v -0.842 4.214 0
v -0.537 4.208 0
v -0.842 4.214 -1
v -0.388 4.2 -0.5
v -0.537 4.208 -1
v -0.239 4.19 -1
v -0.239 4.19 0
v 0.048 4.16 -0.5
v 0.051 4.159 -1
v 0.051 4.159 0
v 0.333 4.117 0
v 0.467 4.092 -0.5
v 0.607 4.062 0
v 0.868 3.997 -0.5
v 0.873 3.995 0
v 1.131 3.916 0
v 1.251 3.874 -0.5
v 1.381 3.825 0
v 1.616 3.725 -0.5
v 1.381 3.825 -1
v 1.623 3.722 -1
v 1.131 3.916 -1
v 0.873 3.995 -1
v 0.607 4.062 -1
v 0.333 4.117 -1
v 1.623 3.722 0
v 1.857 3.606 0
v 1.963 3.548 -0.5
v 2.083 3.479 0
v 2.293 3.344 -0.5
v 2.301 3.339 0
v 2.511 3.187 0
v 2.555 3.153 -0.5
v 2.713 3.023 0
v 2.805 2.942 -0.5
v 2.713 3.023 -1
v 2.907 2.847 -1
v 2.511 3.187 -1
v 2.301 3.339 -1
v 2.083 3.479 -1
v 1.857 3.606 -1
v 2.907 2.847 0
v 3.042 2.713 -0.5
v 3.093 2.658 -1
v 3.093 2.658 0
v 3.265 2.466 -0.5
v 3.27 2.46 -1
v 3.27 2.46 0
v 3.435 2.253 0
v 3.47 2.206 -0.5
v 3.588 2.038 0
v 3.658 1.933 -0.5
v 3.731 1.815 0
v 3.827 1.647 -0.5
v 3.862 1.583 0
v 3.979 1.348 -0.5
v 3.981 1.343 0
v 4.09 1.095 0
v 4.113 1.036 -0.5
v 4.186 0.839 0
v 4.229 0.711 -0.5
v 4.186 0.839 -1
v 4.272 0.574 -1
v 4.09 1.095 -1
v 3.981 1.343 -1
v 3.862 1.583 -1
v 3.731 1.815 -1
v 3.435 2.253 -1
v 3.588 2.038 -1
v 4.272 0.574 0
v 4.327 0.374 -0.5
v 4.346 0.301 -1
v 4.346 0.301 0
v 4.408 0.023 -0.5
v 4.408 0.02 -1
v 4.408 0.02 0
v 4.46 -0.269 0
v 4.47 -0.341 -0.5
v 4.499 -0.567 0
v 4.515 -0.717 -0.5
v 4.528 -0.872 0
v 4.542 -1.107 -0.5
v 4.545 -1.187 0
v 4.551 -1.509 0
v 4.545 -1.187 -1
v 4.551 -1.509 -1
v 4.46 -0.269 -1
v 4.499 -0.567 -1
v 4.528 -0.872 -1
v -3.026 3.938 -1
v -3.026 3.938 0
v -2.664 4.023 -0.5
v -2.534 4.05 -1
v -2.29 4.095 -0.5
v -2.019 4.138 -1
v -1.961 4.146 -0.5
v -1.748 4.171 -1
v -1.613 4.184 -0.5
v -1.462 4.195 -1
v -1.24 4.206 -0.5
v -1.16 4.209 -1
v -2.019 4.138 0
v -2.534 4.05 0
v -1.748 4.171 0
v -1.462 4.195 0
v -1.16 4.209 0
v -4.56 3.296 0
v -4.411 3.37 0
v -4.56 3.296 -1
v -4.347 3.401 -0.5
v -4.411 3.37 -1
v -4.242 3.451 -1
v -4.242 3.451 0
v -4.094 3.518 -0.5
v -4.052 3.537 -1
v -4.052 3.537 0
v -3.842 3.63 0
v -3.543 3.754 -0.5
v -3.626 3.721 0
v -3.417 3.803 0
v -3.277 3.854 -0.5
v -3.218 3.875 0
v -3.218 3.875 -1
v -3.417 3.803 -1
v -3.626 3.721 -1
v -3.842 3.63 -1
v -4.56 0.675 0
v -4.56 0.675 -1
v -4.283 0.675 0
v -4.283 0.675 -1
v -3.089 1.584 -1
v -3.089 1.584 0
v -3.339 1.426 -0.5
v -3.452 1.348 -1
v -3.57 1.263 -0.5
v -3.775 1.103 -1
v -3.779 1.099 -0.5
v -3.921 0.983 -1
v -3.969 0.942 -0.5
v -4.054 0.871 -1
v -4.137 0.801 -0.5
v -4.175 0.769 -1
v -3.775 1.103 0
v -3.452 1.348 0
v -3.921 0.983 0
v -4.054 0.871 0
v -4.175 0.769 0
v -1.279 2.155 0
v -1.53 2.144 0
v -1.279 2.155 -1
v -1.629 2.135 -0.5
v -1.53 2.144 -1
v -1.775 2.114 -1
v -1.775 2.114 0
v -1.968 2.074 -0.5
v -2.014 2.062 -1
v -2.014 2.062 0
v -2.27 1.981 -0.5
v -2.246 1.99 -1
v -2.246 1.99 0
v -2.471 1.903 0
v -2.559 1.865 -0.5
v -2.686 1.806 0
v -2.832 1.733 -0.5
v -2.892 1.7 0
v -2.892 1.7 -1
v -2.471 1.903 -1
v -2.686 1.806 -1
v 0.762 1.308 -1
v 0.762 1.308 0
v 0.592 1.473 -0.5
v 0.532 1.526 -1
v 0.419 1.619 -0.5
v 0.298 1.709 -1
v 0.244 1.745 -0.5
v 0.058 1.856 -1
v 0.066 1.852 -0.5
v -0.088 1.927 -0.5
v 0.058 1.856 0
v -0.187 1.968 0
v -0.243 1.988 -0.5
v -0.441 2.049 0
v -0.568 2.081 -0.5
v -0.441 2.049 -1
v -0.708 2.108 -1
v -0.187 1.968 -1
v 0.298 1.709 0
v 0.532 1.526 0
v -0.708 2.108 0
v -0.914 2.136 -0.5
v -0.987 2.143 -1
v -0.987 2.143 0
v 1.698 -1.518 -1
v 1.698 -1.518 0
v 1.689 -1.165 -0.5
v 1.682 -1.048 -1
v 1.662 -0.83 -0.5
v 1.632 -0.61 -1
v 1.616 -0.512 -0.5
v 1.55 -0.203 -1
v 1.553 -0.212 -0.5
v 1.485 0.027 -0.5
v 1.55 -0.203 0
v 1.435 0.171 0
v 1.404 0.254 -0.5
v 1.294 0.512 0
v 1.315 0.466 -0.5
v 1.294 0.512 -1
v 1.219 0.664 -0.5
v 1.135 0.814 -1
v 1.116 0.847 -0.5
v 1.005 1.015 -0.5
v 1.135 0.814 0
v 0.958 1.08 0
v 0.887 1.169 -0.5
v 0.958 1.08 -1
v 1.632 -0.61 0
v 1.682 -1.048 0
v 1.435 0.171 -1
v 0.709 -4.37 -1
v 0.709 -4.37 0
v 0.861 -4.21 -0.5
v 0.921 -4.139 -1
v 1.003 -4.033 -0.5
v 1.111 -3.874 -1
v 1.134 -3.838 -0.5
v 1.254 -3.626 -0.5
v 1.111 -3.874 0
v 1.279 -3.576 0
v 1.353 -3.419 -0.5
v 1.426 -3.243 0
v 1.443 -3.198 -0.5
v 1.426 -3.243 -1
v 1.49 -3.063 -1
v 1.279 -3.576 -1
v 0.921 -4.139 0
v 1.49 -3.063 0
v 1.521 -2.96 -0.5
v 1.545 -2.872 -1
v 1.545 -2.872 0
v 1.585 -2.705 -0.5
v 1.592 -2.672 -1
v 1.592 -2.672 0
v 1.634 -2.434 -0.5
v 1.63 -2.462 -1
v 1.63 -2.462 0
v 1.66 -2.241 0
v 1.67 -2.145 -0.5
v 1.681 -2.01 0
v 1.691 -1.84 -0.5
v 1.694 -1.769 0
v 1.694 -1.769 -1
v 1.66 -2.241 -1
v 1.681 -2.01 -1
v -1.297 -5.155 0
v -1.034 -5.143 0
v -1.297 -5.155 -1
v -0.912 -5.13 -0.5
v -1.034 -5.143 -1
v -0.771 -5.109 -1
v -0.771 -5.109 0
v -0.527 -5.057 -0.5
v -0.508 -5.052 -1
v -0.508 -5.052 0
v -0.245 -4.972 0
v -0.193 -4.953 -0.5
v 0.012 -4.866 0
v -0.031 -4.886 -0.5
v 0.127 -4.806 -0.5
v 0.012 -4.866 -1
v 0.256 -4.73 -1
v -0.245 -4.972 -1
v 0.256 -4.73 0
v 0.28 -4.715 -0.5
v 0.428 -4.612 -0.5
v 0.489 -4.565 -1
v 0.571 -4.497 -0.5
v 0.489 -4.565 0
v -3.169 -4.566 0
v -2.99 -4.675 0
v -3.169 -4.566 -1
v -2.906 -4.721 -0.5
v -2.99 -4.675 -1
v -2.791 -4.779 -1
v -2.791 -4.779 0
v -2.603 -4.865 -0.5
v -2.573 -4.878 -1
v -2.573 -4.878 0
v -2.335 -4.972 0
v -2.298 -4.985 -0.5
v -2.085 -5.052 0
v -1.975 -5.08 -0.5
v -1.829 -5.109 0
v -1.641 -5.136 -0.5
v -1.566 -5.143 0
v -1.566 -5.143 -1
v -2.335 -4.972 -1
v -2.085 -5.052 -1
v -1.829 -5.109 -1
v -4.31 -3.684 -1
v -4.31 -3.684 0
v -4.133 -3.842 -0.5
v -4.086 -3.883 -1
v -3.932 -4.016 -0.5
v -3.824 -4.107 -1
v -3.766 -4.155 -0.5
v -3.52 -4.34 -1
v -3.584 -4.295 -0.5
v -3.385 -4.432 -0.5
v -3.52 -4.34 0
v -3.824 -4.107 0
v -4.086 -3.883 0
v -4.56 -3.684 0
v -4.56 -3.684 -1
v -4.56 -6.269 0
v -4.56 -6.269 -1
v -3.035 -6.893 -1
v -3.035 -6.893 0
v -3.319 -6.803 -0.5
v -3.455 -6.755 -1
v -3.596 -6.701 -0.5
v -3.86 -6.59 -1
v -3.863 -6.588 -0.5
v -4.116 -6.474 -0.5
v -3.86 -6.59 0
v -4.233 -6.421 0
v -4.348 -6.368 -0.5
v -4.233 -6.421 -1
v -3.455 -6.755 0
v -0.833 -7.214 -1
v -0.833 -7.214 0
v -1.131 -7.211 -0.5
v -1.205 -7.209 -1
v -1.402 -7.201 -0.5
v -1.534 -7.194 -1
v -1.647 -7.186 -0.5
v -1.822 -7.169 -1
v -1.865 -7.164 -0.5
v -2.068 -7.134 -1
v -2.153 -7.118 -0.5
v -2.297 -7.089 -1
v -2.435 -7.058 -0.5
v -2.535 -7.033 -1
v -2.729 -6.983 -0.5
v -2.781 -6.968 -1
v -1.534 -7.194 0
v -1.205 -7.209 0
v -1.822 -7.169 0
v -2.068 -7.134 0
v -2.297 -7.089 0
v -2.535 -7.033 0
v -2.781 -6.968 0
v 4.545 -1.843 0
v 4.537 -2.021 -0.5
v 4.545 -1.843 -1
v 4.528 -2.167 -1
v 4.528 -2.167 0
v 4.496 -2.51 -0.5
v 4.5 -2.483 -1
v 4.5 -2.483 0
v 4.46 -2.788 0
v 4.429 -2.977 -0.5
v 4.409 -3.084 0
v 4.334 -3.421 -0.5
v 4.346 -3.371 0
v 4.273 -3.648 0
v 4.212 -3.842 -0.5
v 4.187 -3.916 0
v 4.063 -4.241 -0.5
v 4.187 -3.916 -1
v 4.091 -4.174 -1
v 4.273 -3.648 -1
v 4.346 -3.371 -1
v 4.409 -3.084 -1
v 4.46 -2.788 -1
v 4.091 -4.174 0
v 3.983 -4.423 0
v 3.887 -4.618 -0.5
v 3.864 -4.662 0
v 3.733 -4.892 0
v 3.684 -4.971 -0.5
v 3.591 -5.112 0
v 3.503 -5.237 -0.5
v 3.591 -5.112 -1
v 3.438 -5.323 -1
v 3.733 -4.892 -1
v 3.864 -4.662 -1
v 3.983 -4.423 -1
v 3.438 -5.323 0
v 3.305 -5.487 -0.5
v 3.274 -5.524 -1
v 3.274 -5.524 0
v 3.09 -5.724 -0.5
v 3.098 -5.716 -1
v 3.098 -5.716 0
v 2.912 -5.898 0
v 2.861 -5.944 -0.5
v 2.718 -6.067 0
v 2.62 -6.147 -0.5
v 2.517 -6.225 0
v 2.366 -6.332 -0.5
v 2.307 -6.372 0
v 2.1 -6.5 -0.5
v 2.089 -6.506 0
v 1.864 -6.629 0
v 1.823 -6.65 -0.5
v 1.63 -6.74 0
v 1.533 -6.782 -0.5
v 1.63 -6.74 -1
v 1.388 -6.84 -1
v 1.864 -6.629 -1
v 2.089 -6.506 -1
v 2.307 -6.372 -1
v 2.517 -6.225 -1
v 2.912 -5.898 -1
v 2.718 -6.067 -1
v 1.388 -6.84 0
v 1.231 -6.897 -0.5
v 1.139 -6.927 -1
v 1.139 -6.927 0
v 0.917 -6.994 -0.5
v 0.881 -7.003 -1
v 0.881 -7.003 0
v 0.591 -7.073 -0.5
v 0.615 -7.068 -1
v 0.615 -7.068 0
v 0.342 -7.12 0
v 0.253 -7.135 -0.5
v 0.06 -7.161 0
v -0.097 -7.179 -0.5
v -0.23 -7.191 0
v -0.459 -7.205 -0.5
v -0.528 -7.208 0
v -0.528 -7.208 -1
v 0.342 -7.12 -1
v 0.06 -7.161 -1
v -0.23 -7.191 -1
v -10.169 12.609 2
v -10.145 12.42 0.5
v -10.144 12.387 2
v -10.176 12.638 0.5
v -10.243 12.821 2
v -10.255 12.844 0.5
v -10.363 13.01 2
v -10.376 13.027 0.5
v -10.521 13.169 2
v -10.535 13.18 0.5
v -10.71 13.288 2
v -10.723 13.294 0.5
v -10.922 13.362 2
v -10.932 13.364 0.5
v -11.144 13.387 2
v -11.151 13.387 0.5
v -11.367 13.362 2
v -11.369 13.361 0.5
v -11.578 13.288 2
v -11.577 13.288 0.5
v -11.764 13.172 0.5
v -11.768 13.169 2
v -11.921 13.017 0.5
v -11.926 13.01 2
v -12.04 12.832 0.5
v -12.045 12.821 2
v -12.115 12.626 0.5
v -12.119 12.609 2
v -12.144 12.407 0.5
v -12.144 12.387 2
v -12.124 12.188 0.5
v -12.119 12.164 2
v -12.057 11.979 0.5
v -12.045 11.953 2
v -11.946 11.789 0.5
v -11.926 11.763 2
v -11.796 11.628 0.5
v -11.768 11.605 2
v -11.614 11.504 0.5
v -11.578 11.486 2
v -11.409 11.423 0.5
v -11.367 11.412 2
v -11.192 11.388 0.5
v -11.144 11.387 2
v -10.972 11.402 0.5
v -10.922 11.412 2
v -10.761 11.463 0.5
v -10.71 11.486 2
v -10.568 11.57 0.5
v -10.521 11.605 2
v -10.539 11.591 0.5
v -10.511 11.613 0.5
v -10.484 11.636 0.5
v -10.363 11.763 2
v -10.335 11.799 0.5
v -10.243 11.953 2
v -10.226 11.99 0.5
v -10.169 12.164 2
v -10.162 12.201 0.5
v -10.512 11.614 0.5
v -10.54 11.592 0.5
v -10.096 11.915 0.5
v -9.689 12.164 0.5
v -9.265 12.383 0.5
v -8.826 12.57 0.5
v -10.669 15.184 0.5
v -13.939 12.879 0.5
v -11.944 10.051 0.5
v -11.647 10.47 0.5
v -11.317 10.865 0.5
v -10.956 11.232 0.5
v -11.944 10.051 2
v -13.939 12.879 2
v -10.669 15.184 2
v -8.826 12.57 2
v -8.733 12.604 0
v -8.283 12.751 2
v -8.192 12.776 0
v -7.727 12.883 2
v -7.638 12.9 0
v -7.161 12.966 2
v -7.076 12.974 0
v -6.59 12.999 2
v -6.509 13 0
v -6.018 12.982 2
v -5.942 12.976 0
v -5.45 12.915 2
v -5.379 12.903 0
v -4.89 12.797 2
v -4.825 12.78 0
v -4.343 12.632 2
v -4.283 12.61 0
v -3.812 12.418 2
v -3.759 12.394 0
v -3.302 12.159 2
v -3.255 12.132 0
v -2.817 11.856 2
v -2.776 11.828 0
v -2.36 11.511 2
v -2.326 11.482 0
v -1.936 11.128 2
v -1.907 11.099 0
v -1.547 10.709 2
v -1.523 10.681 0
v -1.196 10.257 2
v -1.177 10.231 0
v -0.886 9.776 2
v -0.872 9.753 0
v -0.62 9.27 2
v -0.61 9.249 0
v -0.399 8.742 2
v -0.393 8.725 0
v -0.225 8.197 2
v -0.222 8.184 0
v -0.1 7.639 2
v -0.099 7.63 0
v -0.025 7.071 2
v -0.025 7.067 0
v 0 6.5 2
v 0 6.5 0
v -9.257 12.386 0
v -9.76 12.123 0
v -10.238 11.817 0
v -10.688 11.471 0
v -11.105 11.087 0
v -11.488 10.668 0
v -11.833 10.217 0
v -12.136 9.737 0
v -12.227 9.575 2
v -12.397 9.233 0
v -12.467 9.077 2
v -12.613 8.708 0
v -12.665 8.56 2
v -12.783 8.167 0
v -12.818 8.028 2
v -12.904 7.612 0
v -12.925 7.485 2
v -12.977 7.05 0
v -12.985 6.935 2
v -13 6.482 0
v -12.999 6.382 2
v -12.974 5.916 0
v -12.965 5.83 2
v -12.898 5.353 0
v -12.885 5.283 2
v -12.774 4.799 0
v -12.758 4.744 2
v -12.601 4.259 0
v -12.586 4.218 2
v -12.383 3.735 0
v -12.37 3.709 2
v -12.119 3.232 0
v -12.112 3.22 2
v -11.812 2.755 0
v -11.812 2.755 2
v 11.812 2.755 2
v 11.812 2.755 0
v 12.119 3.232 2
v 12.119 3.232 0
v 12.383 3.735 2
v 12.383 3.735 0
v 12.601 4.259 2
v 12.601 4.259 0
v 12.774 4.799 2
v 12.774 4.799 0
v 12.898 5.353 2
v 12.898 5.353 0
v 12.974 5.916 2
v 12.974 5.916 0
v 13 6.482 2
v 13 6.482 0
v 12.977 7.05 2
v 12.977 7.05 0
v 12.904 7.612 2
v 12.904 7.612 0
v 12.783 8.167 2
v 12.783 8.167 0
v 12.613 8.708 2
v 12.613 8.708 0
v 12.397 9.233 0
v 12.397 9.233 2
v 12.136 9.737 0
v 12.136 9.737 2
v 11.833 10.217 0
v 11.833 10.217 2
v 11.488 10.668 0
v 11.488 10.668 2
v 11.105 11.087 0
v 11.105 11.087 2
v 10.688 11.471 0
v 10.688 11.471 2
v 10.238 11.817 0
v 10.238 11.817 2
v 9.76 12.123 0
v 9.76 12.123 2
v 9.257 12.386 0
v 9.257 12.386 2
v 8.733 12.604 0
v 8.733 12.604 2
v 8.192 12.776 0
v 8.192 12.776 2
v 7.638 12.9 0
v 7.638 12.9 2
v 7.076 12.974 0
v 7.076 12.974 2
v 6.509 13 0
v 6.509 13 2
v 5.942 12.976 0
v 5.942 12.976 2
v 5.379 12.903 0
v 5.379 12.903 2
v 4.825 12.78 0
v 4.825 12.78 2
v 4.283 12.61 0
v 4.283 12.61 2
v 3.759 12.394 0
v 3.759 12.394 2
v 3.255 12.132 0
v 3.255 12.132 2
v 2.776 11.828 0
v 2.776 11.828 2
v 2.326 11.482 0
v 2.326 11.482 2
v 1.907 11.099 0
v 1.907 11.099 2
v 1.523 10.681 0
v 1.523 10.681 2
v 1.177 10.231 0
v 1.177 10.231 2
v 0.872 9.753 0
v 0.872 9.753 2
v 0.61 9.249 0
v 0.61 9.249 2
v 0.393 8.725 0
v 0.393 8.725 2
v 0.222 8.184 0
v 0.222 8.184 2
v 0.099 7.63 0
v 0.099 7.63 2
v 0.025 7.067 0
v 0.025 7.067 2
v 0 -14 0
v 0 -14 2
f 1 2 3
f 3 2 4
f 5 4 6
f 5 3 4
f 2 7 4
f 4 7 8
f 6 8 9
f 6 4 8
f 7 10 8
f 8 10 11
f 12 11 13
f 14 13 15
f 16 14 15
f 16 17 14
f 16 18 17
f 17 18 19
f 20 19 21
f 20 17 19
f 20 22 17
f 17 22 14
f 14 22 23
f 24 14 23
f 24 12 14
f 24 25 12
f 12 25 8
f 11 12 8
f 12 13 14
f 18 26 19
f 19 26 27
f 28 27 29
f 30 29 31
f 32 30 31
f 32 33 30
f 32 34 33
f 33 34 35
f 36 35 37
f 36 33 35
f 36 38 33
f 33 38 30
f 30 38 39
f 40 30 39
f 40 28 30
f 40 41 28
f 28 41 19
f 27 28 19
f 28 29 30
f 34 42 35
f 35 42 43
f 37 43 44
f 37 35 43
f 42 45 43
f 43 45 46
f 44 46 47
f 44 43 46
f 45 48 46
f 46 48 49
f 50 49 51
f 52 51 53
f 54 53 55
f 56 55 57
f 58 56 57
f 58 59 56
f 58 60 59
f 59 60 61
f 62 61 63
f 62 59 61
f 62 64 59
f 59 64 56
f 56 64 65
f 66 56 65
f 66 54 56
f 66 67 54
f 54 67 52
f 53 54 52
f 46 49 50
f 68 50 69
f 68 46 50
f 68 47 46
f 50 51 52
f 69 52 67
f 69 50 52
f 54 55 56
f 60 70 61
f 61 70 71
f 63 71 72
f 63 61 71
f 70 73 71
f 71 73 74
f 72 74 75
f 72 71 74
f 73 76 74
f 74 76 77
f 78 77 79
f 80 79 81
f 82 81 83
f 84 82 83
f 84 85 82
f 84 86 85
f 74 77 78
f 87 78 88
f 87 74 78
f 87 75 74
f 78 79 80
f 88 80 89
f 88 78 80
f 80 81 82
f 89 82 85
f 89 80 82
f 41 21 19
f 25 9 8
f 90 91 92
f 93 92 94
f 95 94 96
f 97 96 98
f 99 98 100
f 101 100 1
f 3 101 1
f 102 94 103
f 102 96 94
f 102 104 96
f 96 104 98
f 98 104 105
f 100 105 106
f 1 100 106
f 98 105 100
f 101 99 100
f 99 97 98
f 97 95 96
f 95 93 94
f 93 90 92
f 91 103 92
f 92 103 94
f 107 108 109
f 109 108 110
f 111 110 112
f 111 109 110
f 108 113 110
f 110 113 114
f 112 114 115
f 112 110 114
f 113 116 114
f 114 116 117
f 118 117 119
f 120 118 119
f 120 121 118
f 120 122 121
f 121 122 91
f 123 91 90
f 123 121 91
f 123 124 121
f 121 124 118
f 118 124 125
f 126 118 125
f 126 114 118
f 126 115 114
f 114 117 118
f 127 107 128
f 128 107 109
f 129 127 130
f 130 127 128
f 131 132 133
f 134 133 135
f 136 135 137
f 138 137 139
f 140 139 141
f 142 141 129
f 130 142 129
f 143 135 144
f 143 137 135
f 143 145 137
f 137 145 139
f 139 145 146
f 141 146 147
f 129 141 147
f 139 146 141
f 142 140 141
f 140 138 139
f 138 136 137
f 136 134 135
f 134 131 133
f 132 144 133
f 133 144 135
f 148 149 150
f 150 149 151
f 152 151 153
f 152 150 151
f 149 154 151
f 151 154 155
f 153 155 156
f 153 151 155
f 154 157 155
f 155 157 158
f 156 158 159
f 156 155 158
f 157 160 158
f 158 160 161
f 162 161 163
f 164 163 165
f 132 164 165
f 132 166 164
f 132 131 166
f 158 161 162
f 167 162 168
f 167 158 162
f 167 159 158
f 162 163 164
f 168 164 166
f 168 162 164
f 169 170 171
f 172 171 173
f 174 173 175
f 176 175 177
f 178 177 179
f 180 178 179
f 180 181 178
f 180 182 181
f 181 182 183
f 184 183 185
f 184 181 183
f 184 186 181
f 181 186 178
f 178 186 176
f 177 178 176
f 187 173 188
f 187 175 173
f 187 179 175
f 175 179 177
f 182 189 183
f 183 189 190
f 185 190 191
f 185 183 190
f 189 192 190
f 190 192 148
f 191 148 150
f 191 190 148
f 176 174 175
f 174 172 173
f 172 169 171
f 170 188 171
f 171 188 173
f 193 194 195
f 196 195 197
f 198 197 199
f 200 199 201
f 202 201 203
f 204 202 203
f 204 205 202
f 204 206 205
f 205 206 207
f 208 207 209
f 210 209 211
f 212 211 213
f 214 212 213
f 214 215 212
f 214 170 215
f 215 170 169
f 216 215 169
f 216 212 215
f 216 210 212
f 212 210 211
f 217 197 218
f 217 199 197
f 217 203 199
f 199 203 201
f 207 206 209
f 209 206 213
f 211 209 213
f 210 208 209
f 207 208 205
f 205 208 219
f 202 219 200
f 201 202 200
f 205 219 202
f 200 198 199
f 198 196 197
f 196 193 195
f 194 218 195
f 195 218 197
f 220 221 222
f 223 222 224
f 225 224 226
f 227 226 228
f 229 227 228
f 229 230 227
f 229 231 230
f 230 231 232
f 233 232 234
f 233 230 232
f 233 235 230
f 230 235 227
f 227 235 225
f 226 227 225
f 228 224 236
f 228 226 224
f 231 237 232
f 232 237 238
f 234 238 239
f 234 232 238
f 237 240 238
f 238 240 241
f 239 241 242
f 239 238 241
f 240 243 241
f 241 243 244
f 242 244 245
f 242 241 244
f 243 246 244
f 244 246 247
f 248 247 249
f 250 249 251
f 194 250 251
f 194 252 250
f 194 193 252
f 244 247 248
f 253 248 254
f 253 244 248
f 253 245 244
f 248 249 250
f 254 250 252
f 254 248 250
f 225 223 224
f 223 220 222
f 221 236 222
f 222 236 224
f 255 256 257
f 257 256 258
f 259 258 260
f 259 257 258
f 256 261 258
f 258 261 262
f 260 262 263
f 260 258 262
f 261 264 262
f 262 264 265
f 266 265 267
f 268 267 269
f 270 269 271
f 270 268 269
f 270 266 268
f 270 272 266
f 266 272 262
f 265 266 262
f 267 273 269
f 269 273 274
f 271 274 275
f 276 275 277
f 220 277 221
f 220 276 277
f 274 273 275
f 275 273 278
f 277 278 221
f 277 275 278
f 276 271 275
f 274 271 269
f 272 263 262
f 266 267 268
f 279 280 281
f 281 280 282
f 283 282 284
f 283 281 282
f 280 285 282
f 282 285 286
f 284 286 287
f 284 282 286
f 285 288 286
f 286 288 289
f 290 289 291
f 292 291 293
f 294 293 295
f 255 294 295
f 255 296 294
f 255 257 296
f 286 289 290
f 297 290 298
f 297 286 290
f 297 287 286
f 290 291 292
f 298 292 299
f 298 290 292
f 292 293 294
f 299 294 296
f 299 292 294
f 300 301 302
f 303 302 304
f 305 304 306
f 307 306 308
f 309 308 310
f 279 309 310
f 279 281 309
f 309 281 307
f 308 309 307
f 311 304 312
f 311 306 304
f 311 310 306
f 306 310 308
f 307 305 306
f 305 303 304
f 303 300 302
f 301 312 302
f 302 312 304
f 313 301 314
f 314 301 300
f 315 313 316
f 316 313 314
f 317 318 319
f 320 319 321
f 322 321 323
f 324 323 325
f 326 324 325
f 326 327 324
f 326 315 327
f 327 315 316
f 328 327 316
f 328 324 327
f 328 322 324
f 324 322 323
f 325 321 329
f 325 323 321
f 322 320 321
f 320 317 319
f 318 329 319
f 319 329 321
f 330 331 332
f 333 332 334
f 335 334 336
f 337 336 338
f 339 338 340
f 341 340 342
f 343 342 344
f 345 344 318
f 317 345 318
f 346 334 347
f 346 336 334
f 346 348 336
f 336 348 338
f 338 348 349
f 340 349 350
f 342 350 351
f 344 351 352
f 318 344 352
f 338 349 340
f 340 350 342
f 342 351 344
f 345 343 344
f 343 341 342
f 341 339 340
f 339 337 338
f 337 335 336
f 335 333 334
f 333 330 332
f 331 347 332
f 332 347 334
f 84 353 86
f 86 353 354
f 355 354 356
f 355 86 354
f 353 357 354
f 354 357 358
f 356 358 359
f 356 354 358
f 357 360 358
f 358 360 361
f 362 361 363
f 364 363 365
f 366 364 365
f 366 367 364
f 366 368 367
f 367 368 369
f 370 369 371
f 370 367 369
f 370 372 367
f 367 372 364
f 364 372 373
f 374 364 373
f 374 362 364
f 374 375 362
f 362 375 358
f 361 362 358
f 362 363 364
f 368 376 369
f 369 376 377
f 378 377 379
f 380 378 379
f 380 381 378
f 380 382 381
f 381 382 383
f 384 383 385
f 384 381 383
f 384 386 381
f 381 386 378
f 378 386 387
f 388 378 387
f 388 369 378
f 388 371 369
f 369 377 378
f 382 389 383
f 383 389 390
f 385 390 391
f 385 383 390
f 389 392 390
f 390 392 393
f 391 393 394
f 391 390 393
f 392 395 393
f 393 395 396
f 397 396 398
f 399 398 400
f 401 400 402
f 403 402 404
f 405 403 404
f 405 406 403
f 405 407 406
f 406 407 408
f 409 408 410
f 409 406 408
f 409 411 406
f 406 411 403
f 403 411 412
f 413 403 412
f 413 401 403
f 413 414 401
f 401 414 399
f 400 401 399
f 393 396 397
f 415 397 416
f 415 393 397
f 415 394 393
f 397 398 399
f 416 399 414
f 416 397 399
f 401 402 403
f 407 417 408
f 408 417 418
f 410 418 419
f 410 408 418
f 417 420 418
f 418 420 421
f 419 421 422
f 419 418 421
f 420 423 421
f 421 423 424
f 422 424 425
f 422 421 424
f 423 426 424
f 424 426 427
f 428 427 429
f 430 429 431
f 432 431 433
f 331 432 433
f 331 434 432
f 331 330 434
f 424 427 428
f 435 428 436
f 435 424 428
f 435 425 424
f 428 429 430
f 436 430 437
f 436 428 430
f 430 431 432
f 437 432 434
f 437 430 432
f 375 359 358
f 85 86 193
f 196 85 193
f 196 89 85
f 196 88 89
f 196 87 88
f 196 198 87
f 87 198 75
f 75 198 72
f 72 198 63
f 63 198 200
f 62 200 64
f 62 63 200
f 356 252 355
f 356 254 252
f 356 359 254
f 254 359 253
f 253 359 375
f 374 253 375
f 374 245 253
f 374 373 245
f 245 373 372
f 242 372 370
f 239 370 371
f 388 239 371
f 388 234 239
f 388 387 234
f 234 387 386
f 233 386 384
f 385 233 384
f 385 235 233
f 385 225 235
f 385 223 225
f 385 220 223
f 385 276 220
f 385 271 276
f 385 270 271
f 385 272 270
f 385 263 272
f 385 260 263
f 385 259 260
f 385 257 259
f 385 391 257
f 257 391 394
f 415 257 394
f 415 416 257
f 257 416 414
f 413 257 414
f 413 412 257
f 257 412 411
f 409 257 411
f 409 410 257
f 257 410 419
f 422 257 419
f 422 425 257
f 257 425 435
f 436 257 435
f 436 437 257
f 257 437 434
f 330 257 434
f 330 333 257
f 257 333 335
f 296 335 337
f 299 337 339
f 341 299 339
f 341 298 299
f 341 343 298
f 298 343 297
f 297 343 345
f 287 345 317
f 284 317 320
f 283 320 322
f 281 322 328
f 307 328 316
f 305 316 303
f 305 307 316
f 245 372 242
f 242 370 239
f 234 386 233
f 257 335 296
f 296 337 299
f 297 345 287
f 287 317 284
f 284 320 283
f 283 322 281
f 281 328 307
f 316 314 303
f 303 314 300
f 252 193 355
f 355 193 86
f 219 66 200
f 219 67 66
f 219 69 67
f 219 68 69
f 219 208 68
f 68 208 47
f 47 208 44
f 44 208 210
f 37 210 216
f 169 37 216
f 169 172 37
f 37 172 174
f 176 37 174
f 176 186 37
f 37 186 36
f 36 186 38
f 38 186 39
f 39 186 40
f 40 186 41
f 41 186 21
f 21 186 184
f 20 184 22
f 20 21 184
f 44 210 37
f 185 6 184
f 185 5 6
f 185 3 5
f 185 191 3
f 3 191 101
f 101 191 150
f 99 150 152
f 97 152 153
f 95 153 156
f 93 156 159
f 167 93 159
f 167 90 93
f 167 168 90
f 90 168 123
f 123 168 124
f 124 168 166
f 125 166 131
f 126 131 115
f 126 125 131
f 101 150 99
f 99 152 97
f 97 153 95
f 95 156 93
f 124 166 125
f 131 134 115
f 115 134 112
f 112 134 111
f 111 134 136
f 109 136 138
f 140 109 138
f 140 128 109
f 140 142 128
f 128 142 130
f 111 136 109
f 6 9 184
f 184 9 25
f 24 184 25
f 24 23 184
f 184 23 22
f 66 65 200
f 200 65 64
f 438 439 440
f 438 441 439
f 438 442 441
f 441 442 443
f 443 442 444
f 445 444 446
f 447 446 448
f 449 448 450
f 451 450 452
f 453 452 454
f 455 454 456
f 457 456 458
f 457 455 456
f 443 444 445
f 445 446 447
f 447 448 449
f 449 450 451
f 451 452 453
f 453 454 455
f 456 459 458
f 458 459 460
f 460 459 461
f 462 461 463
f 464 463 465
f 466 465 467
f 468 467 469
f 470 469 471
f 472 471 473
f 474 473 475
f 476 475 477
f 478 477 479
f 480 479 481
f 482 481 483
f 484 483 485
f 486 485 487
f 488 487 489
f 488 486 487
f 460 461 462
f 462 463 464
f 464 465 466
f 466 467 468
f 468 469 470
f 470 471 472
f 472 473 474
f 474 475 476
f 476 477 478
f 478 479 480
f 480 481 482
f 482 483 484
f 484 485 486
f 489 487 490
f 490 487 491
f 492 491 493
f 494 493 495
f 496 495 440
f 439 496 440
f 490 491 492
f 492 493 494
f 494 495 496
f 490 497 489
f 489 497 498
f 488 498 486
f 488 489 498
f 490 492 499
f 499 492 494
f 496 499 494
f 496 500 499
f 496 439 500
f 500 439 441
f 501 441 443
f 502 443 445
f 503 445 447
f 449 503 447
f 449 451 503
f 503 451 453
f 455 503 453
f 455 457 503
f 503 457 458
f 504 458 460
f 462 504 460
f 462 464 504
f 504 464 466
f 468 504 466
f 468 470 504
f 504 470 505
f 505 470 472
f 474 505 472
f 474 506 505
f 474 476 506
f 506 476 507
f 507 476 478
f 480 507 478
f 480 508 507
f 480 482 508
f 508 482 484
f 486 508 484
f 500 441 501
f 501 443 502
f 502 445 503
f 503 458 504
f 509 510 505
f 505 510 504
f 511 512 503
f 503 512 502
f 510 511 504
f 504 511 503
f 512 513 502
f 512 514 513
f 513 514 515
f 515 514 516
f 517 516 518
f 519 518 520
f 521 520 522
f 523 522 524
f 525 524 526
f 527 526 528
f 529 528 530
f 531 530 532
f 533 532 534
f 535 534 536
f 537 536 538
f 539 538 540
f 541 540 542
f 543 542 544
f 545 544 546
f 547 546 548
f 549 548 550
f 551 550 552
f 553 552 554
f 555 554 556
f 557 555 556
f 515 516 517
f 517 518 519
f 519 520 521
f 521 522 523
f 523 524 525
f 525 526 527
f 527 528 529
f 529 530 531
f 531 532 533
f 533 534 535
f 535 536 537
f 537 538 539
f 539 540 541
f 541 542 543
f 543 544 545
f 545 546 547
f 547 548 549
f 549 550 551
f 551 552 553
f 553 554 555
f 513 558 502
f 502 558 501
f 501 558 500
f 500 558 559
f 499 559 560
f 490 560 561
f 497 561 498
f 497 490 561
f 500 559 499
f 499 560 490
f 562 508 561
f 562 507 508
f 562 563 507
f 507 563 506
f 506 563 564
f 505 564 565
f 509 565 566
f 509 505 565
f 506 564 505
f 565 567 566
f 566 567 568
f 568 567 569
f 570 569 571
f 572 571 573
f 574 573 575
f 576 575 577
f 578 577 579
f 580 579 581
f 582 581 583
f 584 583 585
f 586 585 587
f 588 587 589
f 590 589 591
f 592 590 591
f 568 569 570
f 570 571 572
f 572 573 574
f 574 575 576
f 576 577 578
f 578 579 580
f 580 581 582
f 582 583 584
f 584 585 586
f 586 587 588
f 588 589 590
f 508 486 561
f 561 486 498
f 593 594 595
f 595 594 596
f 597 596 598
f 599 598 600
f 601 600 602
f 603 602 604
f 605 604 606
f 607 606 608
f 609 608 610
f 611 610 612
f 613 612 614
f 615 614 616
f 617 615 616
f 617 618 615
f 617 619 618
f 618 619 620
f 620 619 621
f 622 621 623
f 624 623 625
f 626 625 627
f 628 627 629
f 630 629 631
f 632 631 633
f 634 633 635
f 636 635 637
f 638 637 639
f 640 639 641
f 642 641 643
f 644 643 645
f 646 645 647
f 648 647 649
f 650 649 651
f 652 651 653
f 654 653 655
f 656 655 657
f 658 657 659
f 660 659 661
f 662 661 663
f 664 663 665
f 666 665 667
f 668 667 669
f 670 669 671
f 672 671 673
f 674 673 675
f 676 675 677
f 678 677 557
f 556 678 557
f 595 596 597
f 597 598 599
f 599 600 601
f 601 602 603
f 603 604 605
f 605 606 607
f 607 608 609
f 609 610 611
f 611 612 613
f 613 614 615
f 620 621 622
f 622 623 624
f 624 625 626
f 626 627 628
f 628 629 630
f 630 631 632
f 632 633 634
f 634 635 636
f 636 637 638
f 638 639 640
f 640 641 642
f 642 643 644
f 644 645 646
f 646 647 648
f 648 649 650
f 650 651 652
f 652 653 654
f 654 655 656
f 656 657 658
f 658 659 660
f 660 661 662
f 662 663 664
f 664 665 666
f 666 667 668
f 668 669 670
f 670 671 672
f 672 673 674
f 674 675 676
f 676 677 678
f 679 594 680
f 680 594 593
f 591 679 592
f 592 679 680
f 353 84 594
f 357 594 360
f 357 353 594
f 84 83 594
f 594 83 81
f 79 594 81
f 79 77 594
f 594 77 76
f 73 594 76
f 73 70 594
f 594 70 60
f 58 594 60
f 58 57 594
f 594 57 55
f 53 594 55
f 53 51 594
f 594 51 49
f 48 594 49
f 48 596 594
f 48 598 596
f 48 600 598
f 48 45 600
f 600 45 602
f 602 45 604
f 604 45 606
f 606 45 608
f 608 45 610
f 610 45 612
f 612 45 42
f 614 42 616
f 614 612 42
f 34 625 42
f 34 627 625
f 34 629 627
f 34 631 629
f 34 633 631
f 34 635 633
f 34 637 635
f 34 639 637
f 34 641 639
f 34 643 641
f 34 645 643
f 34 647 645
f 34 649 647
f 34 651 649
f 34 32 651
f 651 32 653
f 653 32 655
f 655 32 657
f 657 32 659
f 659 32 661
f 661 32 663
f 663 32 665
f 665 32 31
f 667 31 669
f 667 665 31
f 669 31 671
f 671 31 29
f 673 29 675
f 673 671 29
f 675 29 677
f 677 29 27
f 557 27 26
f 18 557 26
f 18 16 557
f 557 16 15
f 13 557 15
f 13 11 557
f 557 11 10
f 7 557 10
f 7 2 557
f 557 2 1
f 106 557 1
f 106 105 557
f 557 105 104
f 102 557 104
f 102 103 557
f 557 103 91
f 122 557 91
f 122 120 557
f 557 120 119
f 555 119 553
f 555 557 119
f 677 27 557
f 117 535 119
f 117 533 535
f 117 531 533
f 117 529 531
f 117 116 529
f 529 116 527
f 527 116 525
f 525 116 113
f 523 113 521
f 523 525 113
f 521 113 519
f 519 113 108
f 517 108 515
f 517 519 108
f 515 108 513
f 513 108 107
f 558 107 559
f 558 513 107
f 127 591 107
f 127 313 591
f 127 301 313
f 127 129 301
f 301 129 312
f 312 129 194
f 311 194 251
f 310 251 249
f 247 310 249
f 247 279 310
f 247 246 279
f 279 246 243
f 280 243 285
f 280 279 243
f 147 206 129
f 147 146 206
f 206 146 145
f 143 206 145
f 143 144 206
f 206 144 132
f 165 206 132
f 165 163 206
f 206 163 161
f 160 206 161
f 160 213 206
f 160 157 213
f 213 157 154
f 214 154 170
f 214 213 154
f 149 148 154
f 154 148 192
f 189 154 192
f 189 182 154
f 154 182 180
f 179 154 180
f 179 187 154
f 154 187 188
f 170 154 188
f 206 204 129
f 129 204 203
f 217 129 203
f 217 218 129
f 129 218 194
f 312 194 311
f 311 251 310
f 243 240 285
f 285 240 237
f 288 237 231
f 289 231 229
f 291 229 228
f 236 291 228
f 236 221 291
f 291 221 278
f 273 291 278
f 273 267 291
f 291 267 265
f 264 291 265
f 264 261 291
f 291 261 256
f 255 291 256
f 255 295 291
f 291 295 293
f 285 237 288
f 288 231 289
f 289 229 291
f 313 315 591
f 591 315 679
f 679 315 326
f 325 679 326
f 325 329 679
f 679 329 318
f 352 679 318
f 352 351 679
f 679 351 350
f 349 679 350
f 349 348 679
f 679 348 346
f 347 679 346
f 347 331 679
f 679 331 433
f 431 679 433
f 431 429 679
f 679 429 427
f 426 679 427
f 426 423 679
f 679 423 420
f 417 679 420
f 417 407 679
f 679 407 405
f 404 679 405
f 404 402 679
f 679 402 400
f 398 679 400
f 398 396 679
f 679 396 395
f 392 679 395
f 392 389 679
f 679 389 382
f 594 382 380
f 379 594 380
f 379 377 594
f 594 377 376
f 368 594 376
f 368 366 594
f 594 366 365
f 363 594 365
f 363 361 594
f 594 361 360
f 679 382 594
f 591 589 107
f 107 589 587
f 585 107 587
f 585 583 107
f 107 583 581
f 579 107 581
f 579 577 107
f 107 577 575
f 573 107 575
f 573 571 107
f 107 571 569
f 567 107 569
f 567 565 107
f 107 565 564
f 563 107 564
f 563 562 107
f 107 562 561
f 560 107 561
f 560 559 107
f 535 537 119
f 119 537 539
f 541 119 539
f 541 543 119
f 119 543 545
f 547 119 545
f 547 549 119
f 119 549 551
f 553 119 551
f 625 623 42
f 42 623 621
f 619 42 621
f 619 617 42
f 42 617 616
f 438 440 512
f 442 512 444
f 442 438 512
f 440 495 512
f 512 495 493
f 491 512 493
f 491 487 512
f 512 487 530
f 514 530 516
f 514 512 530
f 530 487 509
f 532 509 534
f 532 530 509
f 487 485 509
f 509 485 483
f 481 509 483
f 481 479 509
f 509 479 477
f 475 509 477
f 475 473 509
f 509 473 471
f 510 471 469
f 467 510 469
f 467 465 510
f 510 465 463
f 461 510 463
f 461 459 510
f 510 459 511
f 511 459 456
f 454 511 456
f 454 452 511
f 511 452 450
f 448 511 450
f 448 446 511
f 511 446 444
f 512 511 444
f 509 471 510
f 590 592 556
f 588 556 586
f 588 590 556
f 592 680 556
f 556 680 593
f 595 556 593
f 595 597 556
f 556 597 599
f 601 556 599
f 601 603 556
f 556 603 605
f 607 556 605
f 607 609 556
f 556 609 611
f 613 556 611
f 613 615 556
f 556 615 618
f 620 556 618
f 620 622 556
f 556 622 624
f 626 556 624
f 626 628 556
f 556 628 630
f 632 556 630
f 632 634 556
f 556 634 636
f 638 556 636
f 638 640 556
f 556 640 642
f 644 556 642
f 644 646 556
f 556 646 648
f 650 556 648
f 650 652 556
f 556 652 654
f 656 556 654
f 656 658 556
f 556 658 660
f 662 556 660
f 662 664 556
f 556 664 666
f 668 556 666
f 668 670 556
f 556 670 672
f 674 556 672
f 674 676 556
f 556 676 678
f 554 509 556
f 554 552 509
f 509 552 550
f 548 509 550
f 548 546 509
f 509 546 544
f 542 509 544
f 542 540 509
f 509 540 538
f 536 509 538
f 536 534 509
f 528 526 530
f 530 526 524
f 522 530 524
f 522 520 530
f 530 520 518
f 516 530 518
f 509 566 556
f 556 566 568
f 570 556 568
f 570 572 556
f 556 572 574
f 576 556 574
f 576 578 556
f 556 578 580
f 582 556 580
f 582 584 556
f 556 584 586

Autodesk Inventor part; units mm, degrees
ref_plane "YZ Plane" through (0, 0, 0) normal (1, 0, 0) x (0, 1, 0)
ref_plane "XZ Plane" through (0, 0, 0) normal (0, 1, 0) x (-1, 0, 0)
ref_plane "XY Plane" through (0, 0, 0) normal (0, 0, 1) x (1, 0, 0)
sketch "Sketch1" plane through (0, 0, 0) normal (0, 0, 1) x (1, 0, 0)
  line L0 (0, -14) -> (-11.8124, 2.7546)
  line L1 (0, -14) -> (11.8124, 2.7546)
  arc A0 (0, 6.5) -> (-11.8124, 2.7546) centre (-6.5, 6.5) ccw
  arc A1 (11.8124, 2.7546) -> (0, 6.5) centre (6.5, 6.5) ccw
  point P0 (0, 0)
extrude "Extrusion1" add sketch "Sketch1" along normal blind 2
sketch "Sketch4" plane through (0, 0, 2) normal (0, 0, 1) x (1, 0, 0)
  arc A0 (0, 6.5) -> (-11.8124, 2.7546) centre (-6.5, 6.5) ccw projected
  line L0 (-10.6694, 15.1841) -> (-13.9386, 12.8792)
  line L1 (-13.9386, 12.8792) -> (-11.9445, 10.0507)
  line L2 (-10.6694, 15.1841) -> (-8.8261, 12.5695)
  point P0 (0, 0)
  point P1 (0, -14)
extrude "Extrusion3" add sketch "Sketch4" against normal blind 1.5
sketch "Sketch5" plane through (0, 0, 0.5) normal (0, 0, -1) x (-1, 0, 0)
  line L0 (13.9386, 12.8792) -> (10.6694, 15.1841) projected
  arc A0 (11.8124, 2.7546) -> (0, 6.5) centre (6.5, 6.5) ccw projected
  circle A1 centre (11.1444, 12.3868) radius 1
  point P0 (0, 0)
  dimension "d14" = 2
hole "Hole1" at (-11.1444, 12.3868, 0.5) direction (0, 0, 1) diameter 2 end through all
sketch "Sketch6" plane through (0, 0, 0) normal (0, 0, -1) x (-1, 0, 0)
  line L0 (-11.8124, 2.7546) -> (0, -14) projected
  line L1 (11.8124, 2.7546) -> (0, -14) projected
  line L2 (0, -14) -> (0, -7)
  line L3 (-4.9352, -7) -> (4.9352, -7)
  spline S0 degree 2 poles (0.8335, -7.2139) (-1.6447, -7.2139) (-4.5506, -4.2188) (-4.5506, -1.5089) knots 0 0 0 1 2 2 2
  spline S1 degree 2 poles (-4.5506, -1.5089) (-4.5506, 1.1029) (-1.6357, 4.2139) (0.8424, 4.2139) knots 0 0 0 1 2 2 2
  spline S2 degree 2 poles (0.8424, 4.2139) (1.4931, 4.2139) (2.545, 4.0624) (3.0263, 3.9376) knots 0 0 0 1 2 2 2
  spline S3 degree 2 poles (3.0263, 3.9376) (3.4007, 3.8217) (4.2832, 3.4384) (4.5596, 3.2958) knots 0 0 0 1 2 2 2
  line L4 (4.5596, 3.2958) -> (4.5596, 0.675)
  line L5 (4.5596, 0.675) -> (4.2832, 0.675)
  spline S4 degree 2 poles (4.2832, 0.675) (4.0782, 0.8533) (3.472, 1.3525) (3.0887, 1.5843) knots 0 0 0 1 2 2 2
  spline S5 degree 2 poles (3.0887, 1.5843) (2.7054, 1.825) (1.7873, 2.1548) (1.2792, 2.1548) knots 0 0 0 1 2 2 2
  spline S6 degree 2 poles (1.2792, 2.1548) (0.6819, 2.1548) (-0.3075, 1.7804) (-0.7622, 1.3079) knots 0 0 0 1 2 2 2
  spline S7 degree 2 poles (-0.7622, 1.3079) (-1.1722, 0.889) (-1.6981, -0.5462) (-1.6981, -1.5178) knots 0 0 0 1 2 2 2
  spline S8 degree 2 poles (-1.6981, -1.5178) (-1.6981, -2.5429) (-1.1544, -3.9425) (-0.7087, -4.3703) knots 0 0 0 1 2 2 2
  spline S9 degree 2 poles (-0.7087, -4.3703) (-0.2808, -4.7893) (0.7711, -5.1548) (1.297, -5.1548) knots 0 0 0 1 2 2 2
  spline S10 degree 2 poles (1.297, -5.1548) (1.8408, -5.1548) (2.8302, -4.7893) (3.169, -4.5665) knots 0 0 0 1 2 2 2
  spline S11 degree 2 poles (3.169, -4.5665) (3.5434, -4.3436) (4.1049, -3.8712) (4.31, -3.684) knots 0 0 0 1 2 2 2
  line L6 (4.31, -3.684) -> (4.5596, -3.684)
  line L7 (4.5596, -3.684) -> (4.5596, -6.269)
  spline S12 degree 2 poles (4.5596, -6.269) (4.2565, -6.4117) (3.4631, -6.7682) (3.0353, -6.893) knots 0 0 0 1 2 2 2
  spline S13 degree 2 poles (3.0353, -6.893) (2.5182, -7.0535) (1.6179, -7.2139) (0.8335, -7.2139) knots 0 0 0 1 2 2 2
  point P0 (0, 0)
  dimension "d24" = 7
extrude "Extrusion5" add sketch "Sketch6" along normal blind 1 contours S0 S1 S2 S3 L4 L5 S4 S5 S6 S7 S8 S9 S10 S11 L6 L7 S12 S13 L3 | L3 L2 S0 | L2 L3 S13 S0
properties part number "Gift - C"
